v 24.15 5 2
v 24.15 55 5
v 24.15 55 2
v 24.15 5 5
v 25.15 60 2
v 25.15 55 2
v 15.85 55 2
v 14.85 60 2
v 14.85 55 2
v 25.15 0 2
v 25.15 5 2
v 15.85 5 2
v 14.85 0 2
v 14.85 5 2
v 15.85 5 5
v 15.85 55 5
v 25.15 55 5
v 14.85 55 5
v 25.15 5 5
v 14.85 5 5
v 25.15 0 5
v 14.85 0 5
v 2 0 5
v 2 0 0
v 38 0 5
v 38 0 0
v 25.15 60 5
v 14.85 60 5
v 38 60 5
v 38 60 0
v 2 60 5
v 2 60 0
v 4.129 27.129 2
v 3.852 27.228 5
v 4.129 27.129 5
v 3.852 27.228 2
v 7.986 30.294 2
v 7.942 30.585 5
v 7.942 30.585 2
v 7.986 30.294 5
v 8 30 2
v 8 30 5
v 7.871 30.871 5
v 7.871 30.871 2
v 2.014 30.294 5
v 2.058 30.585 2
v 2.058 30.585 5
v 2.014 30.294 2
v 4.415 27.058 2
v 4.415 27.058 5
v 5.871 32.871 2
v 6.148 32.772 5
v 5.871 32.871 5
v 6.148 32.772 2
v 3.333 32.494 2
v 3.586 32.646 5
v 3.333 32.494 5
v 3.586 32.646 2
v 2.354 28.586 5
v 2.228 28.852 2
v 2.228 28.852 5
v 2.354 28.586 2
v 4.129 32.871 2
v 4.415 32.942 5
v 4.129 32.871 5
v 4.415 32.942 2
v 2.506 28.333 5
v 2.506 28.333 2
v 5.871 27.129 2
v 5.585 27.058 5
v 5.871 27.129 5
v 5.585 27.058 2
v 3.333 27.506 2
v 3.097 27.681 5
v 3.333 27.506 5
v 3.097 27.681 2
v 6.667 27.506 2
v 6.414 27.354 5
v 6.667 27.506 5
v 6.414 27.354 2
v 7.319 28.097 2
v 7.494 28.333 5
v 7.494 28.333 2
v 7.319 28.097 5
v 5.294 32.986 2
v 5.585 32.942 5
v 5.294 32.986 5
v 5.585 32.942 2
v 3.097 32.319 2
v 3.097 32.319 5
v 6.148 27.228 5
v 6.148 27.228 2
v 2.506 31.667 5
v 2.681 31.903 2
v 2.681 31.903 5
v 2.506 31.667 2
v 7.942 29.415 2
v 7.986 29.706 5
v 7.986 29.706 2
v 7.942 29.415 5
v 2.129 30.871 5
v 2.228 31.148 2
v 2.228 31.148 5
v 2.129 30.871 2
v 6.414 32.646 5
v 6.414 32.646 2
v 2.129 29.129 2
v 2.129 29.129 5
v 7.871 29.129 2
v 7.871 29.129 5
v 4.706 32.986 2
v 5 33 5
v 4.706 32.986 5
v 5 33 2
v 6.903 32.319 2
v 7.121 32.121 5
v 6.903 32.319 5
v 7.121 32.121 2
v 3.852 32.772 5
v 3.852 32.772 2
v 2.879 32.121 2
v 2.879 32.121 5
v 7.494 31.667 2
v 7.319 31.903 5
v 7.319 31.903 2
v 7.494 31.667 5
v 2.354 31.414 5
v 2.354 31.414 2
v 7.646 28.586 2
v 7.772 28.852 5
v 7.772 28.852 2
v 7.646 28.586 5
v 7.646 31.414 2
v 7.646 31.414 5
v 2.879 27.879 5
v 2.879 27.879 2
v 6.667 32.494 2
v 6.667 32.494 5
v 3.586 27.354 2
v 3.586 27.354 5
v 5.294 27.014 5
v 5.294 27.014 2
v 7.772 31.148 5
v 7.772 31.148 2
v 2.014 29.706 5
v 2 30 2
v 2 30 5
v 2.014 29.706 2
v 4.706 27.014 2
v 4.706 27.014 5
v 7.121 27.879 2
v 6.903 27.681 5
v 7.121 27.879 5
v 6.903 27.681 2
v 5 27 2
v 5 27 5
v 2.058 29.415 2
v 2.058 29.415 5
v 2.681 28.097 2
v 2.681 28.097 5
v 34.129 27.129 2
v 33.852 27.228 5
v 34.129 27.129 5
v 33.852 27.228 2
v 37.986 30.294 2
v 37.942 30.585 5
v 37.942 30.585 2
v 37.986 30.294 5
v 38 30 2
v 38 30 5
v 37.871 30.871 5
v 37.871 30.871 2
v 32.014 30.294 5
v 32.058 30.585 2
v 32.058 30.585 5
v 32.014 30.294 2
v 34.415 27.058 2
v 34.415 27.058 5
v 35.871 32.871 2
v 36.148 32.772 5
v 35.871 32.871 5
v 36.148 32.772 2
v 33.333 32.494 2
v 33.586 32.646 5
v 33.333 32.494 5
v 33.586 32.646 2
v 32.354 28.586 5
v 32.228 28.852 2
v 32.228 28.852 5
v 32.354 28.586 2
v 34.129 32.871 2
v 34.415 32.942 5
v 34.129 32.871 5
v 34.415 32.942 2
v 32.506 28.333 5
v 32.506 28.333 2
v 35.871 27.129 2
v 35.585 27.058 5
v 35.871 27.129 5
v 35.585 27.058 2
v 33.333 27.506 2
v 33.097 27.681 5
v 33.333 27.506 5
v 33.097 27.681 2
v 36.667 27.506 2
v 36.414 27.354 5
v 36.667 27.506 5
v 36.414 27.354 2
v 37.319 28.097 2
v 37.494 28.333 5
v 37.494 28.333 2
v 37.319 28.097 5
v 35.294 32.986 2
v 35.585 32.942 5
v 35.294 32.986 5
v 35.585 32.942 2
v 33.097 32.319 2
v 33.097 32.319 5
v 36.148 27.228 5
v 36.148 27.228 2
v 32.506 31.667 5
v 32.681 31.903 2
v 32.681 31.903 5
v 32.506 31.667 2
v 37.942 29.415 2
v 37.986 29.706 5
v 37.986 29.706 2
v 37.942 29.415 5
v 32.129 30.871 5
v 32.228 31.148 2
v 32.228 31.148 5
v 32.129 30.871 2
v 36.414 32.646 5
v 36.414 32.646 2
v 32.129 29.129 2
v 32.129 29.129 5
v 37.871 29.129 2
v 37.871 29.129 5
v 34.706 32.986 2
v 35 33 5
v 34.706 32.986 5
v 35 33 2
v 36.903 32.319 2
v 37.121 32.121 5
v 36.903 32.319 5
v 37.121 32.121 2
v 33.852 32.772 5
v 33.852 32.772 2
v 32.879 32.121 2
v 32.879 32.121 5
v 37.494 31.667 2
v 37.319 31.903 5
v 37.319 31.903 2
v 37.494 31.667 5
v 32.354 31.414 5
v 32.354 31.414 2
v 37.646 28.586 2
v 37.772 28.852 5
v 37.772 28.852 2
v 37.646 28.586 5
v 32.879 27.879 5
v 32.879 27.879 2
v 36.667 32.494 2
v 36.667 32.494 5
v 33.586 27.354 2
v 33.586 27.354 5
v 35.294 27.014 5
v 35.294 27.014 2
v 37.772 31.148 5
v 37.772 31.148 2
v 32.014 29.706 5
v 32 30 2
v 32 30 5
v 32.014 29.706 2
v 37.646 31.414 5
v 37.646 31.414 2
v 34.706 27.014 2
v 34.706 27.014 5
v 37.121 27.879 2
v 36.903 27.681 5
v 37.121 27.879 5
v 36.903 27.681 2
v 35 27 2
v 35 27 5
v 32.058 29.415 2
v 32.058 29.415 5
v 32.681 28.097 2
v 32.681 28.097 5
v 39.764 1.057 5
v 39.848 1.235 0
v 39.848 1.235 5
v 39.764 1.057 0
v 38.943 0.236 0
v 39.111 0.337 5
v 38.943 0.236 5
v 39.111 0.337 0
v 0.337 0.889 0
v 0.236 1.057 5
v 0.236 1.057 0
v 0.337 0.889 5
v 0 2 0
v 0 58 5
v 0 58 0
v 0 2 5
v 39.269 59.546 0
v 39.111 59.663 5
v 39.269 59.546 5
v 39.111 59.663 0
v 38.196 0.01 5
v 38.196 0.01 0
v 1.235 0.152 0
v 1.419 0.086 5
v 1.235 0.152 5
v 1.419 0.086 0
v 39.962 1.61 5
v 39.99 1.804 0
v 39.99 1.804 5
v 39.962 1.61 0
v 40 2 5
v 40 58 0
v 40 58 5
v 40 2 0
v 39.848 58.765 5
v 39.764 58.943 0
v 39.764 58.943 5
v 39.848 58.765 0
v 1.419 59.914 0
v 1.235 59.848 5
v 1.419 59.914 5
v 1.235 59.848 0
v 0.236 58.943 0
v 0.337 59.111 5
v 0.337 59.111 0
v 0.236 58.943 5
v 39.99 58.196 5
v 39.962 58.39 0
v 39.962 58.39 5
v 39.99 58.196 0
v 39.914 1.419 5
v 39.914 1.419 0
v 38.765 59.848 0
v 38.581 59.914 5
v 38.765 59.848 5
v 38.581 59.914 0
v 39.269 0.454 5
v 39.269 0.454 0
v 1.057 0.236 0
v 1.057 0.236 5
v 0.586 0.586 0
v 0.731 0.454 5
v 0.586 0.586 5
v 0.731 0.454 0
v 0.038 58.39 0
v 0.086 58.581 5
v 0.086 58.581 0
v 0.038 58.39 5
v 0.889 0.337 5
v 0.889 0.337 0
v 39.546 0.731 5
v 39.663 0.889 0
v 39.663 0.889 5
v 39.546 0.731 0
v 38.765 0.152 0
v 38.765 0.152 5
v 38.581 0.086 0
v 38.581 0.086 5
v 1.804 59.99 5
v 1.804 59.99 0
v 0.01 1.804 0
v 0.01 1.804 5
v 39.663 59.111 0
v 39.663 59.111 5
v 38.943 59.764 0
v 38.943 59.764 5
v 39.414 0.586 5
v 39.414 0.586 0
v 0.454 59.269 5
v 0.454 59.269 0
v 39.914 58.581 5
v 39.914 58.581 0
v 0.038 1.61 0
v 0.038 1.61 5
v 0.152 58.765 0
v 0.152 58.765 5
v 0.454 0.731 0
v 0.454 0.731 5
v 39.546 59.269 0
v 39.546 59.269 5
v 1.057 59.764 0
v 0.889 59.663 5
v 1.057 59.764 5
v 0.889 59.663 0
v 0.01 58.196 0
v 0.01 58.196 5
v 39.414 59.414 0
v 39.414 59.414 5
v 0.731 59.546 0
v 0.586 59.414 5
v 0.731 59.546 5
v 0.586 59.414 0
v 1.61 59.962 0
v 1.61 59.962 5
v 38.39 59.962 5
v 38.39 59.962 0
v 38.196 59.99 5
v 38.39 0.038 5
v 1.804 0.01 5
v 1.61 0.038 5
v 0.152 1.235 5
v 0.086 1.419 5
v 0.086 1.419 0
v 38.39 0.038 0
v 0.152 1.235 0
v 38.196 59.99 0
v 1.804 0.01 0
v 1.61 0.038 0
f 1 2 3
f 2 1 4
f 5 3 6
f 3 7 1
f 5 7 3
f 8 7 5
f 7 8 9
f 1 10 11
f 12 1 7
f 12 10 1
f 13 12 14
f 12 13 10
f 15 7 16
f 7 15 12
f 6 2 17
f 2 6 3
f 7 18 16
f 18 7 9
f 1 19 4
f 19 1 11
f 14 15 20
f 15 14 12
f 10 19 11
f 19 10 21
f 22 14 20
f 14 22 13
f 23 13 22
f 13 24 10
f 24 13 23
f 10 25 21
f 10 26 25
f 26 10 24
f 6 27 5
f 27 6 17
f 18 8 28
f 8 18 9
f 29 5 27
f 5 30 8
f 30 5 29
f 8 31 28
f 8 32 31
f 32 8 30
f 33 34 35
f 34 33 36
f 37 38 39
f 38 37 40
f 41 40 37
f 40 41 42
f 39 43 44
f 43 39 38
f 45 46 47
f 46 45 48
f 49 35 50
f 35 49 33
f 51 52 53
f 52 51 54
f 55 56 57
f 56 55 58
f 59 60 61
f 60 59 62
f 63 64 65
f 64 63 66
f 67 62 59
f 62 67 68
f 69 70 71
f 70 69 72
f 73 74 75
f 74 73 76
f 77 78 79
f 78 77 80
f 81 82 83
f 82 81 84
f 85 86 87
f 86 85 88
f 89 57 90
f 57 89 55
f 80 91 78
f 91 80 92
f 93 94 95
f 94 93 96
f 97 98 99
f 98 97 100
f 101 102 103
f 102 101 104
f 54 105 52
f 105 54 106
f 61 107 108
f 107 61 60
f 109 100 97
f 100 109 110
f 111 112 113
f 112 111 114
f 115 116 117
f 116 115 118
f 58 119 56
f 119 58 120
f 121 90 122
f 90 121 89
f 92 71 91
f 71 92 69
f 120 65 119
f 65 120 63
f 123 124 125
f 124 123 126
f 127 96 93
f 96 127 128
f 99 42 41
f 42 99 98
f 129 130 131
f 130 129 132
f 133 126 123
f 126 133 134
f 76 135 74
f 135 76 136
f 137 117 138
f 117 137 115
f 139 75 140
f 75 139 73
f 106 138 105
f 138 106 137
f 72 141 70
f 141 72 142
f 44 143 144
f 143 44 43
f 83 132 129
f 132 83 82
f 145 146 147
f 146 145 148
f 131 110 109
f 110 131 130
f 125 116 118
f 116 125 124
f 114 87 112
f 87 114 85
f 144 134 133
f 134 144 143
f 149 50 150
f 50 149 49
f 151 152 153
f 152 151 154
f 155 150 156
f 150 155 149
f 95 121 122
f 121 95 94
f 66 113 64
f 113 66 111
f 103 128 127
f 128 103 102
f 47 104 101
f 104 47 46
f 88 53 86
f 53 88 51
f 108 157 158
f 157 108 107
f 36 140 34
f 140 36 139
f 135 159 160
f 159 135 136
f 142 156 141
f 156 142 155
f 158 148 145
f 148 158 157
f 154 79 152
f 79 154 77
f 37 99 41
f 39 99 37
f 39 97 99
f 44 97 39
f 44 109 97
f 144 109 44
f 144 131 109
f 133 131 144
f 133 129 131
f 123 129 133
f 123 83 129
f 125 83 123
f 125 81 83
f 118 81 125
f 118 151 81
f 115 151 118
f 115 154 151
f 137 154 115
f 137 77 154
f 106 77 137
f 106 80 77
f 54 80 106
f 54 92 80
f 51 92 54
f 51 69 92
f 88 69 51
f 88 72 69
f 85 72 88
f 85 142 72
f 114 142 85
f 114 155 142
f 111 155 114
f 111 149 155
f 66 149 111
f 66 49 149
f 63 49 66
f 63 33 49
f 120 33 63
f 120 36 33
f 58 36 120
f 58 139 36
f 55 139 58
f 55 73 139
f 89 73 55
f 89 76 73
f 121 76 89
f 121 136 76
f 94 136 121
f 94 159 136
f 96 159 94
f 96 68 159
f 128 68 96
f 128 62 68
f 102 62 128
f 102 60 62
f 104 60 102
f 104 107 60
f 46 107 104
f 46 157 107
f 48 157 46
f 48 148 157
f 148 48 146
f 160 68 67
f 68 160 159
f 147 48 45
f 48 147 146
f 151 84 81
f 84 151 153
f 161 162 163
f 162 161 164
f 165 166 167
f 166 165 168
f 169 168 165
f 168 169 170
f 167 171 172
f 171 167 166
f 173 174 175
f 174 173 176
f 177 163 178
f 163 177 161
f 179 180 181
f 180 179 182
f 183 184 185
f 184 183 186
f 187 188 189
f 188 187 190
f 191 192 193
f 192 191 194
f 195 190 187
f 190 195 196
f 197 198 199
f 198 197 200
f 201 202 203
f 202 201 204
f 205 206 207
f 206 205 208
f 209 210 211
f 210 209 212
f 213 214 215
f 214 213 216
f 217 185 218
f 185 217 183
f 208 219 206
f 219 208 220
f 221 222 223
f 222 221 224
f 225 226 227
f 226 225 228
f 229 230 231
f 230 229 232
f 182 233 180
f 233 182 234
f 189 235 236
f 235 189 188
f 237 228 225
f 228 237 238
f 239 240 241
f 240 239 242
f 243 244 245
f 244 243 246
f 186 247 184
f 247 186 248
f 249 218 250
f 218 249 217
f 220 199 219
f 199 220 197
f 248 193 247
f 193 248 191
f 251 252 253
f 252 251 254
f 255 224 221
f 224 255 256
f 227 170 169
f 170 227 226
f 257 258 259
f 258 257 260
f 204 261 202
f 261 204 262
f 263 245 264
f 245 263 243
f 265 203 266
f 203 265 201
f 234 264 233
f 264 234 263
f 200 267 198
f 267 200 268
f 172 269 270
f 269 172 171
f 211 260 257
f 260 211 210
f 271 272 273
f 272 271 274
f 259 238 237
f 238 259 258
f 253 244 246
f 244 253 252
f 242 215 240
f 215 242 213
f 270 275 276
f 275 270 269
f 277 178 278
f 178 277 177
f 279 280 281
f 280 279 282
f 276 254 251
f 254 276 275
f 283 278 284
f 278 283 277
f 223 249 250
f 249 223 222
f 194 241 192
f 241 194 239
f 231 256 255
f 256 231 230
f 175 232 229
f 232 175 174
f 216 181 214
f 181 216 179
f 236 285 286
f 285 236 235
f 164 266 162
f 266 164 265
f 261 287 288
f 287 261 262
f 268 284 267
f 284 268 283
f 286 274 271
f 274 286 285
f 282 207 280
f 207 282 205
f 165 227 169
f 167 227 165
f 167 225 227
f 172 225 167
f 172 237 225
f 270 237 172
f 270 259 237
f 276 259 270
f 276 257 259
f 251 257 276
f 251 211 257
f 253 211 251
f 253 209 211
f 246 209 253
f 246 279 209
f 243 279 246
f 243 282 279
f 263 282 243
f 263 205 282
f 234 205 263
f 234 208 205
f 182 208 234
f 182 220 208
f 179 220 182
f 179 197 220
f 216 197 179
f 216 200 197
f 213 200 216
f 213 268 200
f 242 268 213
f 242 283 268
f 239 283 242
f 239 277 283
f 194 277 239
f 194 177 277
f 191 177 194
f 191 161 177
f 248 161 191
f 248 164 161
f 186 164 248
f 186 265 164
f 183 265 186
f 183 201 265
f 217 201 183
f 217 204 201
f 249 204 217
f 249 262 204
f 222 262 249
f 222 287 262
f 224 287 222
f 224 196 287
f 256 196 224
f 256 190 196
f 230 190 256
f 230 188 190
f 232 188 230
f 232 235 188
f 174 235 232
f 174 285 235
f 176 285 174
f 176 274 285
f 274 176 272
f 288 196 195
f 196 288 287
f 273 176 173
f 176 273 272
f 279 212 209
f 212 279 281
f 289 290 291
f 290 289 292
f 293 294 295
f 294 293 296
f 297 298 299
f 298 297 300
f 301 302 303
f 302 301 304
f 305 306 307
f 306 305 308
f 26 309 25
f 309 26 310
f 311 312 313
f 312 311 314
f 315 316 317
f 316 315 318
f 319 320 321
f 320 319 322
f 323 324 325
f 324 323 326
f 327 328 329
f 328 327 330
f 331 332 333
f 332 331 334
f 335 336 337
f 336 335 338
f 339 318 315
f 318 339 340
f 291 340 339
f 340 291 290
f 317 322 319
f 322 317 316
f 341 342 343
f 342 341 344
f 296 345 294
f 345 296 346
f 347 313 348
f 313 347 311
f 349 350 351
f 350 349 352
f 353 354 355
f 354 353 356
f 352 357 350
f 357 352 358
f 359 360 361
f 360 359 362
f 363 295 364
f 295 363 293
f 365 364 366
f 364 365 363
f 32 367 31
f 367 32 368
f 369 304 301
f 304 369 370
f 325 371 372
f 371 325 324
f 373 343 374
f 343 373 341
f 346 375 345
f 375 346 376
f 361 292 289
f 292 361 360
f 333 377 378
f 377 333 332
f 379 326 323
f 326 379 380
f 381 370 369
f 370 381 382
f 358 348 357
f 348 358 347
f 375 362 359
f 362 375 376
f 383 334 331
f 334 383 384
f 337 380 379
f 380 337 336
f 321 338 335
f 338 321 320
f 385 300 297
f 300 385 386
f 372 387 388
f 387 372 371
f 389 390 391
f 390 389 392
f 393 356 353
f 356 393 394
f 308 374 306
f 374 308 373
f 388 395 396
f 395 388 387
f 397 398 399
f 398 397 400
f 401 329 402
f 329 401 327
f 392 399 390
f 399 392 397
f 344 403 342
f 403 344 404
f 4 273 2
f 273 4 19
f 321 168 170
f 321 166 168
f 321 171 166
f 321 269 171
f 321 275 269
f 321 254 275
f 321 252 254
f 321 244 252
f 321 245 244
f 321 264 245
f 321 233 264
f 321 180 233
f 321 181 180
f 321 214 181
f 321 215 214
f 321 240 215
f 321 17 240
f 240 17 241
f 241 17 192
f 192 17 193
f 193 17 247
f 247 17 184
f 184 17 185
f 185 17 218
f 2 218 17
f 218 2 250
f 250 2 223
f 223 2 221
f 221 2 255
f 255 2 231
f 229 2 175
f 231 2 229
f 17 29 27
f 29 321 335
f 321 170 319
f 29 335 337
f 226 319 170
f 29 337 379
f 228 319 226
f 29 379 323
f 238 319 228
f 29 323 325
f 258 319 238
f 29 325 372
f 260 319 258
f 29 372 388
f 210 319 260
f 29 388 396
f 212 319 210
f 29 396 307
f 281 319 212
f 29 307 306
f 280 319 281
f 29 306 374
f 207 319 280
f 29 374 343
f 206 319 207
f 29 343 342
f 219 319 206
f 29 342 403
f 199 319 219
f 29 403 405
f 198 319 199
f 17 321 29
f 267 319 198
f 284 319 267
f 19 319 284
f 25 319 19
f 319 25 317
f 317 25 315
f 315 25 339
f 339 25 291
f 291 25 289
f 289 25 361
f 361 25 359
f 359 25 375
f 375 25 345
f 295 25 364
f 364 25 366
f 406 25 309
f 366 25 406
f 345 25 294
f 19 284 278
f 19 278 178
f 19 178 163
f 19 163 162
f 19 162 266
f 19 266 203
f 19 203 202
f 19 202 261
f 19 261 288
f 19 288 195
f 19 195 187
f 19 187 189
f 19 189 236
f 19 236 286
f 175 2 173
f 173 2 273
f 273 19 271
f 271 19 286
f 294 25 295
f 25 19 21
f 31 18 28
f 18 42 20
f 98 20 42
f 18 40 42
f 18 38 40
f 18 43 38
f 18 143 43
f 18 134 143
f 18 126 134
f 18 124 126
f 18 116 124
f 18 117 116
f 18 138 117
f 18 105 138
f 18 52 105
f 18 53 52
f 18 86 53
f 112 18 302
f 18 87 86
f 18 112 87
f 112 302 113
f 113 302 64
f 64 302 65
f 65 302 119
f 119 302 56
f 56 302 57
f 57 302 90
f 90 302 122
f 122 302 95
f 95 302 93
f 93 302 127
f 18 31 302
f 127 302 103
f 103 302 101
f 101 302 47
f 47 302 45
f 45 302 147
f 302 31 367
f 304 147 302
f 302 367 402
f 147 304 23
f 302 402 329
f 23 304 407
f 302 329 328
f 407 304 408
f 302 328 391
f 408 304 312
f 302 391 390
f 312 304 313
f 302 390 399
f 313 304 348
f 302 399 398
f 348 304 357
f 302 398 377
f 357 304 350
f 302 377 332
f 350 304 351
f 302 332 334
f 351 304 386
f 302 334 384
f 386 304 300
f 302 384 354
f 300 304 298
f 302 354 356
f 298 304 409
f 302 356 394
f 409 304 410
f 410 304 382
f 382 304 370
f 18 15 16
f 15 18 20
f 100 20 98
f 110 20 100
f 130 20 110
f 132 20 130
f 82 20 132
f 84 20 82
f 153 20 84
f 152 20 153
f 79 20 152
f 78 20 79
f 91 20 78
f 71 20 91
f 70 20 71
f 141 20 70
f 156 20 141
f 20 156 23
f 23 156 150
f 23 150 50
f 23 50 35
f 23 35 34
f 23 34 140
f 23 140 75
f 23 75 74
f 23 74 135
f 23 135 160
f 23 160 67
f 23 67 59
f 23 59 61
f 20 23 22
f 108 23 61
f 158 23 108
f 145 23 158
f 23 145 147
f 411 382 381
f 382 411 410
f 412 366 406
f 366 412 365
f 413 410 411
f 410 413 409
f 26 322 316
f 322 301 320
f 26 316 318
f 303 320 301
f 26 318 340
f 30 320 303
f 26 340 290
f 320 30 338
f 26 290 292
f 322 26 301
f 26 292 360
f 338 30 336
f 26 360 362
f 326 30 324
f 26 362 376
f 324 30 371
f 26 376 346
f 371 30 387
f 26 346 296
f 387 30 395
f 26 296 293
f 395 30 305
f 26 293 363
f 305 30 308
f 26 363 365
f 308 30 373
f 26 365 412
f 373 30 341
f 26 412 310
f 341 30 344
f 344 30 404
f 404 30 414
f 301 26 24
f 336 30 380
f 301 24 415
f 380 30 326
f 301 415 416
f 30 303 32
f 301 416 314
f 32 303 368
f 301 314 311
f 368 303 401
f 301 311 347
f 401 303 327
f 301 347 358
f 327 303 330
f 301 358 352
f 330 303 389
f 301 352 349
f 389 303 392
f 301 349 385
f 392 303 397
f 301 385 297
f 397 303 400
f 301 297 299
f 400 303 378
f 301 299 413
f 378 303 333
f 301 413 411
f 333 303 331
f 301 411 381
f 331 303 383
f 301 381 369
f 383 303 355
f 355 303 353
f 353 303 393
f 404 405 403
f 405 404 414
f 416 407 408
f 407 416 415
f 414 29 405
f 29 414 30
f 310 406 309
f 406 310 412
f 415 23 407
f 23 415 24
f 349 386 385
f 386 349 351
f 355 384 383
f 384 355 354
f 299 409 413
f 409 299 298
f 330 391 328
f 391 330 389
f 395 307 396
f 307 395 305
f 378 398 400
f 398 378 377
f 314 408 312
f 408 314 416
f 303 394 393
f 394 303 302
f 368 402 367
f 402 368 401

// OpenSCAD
// file: ../src/strip_feeder_magnetic.scad
// Strip Feeder with Magnetic Holders for MicroSMT v3
// Based on the MicroSMT v3 magnetic slot design
// Supports 8mm, 12mm, 16mm, and 24mm tape widths

/* [Main Parameters] */
// Tape width in mm (8, 12, 16, or 24)
tape_width = 8; // [8:4:24]

// Number of feeder slots
num_slots = 1; // [1:1:10]

// Render mode
render_mode = "single"; // [single:Single Slot, array:Array of Slots, base:Base Only]

/* [Dimensions] */
// Base dimensions
base_length = 60;
base_width = 40;
base_height = 5;

// Slot dimensions (adjusted based on tape width)
slot_length = 50;
slot_depth = 3;

// Magnetic holder mounting
magnet_diameter = 6;
magnet_depth = 3;
magnet_spacing = 30; // Distance between magnet centers

// Wall thickness
wall_thickness = 2;

/* [Advanced Settings] */
// Tolerance for tape fit
tape_tolerance = 0.3;

// Corner radius for rounded edges
corner_radius = 2;

// Show magnets (for visualization)
show_magnets = false;

/* [Hidden] */
$fn = 64;

// Calculate slot width based on tape width with tolerance
slot_width = tape_width + tape_tolerance;

module rounded_cube(size, radius) {
    hull() {
        translate([radius, radius, 0])
            cylinder(r=radius, h=size[2]);
        translate([size[0]-radius, radius, 0])
            cylinder(r=radius, h=size[2]);
        translate([radius, size[1]-radius, 0])
            cylinder(r=radius, h=size[2]);
        translate([size[0]-radius, size[1]-radius, 0])
            cylinder(r=radius, h=size[2]);
    }
}

module magnet_hole() {
    cylinder(d=magnet_diameter, h=magnet_depth + 0.1);
}

module magnet_holes_array() {
    // Two magnets along the X-axis for stable mounting
    // Left magnet (negative X direction)
    translate([base_width/2 - magnet_spacing/2, base_length/2, base_height - magnet_depth])
        magnet_hole();
    // Right magnet (positive X direction)
    translate([base_width/2 + magnet_spacing/2, base_length/2, base_height - magnet_depth])
        magnet_hole();
}

module tape_channel() {
    // Main tape channel
    translate([base_width/2 - slot_width/2, (base_length - slot_length)/2, base_height - slot_depth])
        cube([slot_width, slot_length, slot_depth + 0.1]);
    
    // Entry and exit chamfers
    translate([base_width/2 - slot_width/2 - 1, (base_length - slot_length)/2 - 5, base_height - slot_depth])
        cube([slot_width + 2, 5, slot_depth + 0.1]);
    translate([base_width/2 - slot_width/2 - 1, (base_length - slot_length)/2 + slot_length, base_height - slot_depth])
        cube([slot_width + 2, 5, slot_depth + 0.1]);
}

module single_feeder_slot() {
    difference() {
        // Main base
        rounded_cube([base_width, base_length, base_height], corner_radius);
        
        // Tape channel
        tape_channel();
        
        // Magnet holes
        magnet_holes_array();
    }
    
    // Visual magnets (for reference)
    if (show_magnets) {
        color("silver", 0.8) {
            translate([base_width/2 - magnet_spacing/2, base_length/2, base_height - magnet_depth])
                cylinder(d=magnet_diameter, h=magnet_depth);
            translate([base_width/2 + magnet_spacing/2, base_length/2, base_height - magnet_depth])
                cylinder(d=magnet_diameter, h=magnet_depth);
        }
    }
}

module feeder_array() {
    for (i = [0:num_slots-1]) {
        translate([i * (base_width + 2), 0, 0])
            single_feeder_slot();
    }
}

module base_plate() {
    // Base mounting plate for multiple feeders
    plate_width = num_slots * (base_width + 2) + 10;
    plate_length = base_length + 10;
    plate_height = 3;
    
    difference() {
        rounded_cube([plate_width, plate_length, plate_height], corner_radius);
        
        // Mounting holes at corners
        for (x = [10, plate_width - 10]) {
            for (y = [10, plate_length - 10]) {
                translate([x, y, -0.1])
                    cylinder(d=3.5, h=plate_height + 0.2);
            }
        }
    }
}

// Main render logic
if (render_mode == "single") {
    single_feeder_slot();
} else if (render_mode == "array") {
    feeder_array();
} else if (render_mode == "base") {
    base_plate();
}

// Information
echo(str("Strip Feeder Configuration:"));
echo(str("  Tape Width: ", tape_width, "mm"));
echo(str("  Slot Width: ", slot_width, "mm"));
echo(str("  Number of Slots: ", num_slots));
echo(str("  Magnet Diameter: ", magnet_diameter, "mm"));
echo(str("  Magnet Depth: ", magnet_depth, "mm"));
// main file
// Example: 12mm Strip Feeder Array
// 4-slot feeder array for 12mm tape

tape_width = 12;
num_slots = 4;
render_mode = "array";

include <../src/strip_feeder_magnetic.scad>
